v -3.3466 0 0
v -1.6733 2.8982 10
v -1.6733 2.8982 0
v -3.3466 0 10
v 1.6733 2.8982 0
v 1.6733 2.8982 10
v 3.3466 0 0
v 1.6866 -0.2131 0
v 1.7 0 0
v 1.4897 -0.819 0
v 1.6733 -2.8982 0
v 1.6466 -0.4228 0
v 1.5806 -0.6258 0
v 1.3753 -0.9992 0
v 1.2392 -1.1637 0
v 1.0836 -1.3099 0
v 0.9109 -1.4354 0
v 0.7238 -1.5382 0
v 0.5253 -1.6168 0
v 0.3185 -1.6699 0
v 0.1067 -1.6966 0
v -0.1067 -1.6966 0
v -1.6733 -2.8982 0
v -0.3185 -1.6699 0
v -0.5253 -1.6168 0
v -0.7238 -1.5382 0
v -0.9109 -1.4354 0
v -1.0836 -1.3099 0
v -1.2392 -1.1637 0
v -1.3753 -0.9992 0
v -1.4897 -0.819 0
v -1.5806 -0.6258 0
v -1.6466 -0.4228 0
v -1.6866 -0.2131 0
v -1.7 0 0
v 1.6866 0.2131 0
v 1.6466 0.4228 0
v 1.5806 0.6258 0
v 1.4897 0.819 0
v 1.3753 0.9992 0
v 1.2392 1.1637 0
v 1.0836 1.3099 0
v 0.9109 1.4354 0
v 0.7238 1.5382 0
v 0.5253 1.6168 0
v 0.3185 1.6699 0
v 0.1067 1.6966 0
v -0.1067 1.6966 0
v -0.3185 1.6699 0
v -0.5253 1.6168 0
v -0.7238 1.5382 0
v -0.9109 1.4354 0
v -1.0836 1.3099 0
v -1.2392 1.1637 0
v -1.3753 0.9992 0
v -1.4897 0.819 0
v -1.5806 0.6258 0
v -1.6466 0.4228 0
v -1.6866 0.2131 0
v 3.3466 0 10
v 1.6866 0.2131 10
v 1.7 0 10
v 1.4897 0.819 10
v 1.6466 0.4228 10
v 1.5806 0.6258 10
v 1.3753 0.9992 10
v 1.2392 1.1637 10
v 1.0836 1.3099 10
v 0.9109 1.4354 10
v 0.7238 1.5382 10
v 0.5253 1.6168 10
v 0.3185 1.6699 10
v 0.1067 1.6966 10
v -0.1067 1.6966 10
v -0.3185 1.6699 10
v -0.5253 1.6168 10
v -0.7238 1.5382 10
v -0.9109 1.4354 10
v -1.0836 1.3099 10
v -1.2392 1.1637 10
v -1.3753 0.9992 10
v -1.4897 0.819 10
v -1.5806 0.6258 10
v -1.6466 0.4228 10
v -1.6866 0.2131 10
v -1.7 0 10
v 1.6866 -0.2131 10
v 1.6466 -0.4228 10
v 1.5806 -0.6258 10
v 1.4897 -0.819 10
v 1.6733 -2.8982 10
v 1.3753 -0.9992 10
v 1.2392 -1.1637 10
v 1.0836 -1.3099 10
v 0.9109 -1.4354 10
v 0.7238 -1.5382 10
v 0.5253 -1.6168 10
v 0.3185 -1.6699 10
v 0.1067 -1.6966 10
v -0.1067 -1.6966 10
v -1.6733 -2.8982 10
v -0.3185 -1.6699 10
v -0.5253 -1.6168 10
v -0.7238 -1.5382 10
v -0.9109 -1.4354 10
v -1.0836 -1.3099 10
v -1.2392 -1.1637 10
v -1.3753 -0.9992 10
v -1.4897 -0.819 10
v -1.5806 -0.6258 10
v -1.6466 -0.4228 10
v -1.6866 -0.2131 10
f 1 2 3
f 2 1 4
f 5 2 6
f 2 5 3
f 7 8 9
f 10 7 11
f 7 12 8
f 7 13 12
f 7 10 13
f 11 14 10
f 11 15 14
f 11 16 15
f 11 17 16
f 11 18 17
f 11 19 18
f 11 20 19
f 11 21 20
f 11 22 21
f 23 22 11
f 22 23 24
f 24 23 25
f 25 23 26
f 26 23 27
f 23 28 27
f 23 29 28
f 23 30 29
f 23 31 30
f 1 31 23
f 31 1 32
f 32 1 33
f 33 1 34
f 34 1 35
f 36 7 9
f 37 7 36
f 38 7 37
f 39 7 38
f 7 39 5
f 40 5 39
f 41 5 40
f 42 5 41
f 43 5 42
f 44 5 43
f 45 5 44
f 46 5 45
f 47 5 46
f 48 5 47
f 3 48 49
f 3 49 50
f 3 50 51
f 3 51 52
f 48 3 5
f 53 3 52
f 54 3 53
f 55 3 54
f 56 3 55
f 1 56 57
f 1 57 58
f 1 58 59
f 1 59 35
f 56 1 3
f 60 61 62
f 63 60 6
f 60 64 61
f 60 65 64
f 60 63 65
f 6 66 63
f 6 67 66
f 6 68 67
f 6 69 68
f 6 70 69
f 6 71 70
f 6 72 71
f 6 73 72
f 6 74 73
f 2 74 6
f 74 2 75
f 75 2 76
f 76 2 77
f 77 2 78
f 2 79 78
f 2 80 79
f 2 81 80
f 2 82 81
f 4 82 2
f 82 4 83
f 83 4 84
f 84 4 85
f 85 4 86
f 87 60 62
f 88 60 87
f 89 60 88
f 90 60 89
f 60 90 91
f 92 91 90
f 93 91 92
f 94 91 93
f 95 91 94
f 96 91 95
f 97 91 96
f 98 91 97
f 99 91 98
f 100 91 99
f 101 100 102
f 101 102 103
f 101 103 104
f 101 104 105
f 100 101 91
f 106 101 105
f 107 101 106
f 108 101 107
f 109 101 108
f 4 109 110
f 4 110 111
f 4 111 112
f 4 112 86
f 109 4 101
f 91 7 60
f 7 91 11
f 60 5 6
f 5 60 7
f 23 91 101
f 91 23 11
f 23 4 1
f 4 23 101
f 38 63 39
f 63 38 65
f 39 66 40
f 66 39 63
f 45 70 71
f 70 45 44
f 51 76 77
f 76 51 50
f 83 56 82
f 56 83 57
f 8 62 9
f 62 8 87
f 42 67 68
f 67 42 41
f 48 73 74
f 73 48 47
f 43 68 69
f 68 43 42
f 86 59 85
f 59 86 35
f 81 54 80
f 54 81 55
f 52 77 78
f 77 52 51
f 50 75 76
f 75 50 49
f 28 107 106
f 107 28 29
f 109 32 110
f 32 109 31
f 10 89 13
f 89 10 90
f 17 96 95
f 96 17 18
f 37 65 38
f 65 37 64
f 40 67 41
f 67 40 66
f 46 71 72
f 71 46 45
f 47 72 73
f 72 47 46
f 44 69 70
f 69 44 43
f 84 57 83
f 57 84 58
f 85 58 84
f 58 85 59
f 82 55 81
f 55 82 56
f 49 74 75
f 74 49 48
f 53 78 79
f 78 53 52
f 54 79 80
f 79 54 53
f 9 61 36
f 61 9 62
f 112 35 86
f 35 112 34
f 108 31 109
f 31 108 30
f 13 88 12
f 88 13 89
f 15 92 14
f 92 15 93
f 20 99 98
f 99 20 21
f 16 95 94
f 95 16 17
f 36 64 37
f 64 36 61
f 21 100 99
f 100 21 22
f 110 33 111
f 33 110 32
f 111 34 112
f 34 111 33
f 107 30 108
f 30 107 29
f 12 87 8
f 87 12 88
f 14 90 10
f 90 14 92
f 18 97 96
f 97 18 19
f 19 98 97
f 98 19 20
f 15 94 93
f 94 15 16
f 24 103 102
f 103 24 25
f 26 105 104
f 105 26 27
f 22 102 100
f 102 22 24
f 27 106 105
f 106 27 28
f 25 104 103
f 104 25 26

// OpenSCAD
$fn = 50;


difference() {
	union() {
		translate(v = [0, 0, 0]) {
			rotate(a = [0, 0, 0]) {
				translate(v = [0, 0, 0]) {
					rotate(a = [0, 0, 0]) {
						linear_extrude(height = 10) {
							polygon(points = [[3.3466000000, 0.0000000000], [1.6733000000, 2.8982406163], [-1.6733000000, 2.8982406163], [-3.3466000000, 0.0000000000], [-1.6733000000, -2.8982406163], [1.6733000000, -2.8982406163]]);
						}
					}
				}
			}
		}
	}
	union() {
		translate(v = [0, 0, -10]) {
			rotate(a = [0, 0, 0]) {
				cylinder(h = 100, r = 1.7000000000);
			}
		}
	}
}
